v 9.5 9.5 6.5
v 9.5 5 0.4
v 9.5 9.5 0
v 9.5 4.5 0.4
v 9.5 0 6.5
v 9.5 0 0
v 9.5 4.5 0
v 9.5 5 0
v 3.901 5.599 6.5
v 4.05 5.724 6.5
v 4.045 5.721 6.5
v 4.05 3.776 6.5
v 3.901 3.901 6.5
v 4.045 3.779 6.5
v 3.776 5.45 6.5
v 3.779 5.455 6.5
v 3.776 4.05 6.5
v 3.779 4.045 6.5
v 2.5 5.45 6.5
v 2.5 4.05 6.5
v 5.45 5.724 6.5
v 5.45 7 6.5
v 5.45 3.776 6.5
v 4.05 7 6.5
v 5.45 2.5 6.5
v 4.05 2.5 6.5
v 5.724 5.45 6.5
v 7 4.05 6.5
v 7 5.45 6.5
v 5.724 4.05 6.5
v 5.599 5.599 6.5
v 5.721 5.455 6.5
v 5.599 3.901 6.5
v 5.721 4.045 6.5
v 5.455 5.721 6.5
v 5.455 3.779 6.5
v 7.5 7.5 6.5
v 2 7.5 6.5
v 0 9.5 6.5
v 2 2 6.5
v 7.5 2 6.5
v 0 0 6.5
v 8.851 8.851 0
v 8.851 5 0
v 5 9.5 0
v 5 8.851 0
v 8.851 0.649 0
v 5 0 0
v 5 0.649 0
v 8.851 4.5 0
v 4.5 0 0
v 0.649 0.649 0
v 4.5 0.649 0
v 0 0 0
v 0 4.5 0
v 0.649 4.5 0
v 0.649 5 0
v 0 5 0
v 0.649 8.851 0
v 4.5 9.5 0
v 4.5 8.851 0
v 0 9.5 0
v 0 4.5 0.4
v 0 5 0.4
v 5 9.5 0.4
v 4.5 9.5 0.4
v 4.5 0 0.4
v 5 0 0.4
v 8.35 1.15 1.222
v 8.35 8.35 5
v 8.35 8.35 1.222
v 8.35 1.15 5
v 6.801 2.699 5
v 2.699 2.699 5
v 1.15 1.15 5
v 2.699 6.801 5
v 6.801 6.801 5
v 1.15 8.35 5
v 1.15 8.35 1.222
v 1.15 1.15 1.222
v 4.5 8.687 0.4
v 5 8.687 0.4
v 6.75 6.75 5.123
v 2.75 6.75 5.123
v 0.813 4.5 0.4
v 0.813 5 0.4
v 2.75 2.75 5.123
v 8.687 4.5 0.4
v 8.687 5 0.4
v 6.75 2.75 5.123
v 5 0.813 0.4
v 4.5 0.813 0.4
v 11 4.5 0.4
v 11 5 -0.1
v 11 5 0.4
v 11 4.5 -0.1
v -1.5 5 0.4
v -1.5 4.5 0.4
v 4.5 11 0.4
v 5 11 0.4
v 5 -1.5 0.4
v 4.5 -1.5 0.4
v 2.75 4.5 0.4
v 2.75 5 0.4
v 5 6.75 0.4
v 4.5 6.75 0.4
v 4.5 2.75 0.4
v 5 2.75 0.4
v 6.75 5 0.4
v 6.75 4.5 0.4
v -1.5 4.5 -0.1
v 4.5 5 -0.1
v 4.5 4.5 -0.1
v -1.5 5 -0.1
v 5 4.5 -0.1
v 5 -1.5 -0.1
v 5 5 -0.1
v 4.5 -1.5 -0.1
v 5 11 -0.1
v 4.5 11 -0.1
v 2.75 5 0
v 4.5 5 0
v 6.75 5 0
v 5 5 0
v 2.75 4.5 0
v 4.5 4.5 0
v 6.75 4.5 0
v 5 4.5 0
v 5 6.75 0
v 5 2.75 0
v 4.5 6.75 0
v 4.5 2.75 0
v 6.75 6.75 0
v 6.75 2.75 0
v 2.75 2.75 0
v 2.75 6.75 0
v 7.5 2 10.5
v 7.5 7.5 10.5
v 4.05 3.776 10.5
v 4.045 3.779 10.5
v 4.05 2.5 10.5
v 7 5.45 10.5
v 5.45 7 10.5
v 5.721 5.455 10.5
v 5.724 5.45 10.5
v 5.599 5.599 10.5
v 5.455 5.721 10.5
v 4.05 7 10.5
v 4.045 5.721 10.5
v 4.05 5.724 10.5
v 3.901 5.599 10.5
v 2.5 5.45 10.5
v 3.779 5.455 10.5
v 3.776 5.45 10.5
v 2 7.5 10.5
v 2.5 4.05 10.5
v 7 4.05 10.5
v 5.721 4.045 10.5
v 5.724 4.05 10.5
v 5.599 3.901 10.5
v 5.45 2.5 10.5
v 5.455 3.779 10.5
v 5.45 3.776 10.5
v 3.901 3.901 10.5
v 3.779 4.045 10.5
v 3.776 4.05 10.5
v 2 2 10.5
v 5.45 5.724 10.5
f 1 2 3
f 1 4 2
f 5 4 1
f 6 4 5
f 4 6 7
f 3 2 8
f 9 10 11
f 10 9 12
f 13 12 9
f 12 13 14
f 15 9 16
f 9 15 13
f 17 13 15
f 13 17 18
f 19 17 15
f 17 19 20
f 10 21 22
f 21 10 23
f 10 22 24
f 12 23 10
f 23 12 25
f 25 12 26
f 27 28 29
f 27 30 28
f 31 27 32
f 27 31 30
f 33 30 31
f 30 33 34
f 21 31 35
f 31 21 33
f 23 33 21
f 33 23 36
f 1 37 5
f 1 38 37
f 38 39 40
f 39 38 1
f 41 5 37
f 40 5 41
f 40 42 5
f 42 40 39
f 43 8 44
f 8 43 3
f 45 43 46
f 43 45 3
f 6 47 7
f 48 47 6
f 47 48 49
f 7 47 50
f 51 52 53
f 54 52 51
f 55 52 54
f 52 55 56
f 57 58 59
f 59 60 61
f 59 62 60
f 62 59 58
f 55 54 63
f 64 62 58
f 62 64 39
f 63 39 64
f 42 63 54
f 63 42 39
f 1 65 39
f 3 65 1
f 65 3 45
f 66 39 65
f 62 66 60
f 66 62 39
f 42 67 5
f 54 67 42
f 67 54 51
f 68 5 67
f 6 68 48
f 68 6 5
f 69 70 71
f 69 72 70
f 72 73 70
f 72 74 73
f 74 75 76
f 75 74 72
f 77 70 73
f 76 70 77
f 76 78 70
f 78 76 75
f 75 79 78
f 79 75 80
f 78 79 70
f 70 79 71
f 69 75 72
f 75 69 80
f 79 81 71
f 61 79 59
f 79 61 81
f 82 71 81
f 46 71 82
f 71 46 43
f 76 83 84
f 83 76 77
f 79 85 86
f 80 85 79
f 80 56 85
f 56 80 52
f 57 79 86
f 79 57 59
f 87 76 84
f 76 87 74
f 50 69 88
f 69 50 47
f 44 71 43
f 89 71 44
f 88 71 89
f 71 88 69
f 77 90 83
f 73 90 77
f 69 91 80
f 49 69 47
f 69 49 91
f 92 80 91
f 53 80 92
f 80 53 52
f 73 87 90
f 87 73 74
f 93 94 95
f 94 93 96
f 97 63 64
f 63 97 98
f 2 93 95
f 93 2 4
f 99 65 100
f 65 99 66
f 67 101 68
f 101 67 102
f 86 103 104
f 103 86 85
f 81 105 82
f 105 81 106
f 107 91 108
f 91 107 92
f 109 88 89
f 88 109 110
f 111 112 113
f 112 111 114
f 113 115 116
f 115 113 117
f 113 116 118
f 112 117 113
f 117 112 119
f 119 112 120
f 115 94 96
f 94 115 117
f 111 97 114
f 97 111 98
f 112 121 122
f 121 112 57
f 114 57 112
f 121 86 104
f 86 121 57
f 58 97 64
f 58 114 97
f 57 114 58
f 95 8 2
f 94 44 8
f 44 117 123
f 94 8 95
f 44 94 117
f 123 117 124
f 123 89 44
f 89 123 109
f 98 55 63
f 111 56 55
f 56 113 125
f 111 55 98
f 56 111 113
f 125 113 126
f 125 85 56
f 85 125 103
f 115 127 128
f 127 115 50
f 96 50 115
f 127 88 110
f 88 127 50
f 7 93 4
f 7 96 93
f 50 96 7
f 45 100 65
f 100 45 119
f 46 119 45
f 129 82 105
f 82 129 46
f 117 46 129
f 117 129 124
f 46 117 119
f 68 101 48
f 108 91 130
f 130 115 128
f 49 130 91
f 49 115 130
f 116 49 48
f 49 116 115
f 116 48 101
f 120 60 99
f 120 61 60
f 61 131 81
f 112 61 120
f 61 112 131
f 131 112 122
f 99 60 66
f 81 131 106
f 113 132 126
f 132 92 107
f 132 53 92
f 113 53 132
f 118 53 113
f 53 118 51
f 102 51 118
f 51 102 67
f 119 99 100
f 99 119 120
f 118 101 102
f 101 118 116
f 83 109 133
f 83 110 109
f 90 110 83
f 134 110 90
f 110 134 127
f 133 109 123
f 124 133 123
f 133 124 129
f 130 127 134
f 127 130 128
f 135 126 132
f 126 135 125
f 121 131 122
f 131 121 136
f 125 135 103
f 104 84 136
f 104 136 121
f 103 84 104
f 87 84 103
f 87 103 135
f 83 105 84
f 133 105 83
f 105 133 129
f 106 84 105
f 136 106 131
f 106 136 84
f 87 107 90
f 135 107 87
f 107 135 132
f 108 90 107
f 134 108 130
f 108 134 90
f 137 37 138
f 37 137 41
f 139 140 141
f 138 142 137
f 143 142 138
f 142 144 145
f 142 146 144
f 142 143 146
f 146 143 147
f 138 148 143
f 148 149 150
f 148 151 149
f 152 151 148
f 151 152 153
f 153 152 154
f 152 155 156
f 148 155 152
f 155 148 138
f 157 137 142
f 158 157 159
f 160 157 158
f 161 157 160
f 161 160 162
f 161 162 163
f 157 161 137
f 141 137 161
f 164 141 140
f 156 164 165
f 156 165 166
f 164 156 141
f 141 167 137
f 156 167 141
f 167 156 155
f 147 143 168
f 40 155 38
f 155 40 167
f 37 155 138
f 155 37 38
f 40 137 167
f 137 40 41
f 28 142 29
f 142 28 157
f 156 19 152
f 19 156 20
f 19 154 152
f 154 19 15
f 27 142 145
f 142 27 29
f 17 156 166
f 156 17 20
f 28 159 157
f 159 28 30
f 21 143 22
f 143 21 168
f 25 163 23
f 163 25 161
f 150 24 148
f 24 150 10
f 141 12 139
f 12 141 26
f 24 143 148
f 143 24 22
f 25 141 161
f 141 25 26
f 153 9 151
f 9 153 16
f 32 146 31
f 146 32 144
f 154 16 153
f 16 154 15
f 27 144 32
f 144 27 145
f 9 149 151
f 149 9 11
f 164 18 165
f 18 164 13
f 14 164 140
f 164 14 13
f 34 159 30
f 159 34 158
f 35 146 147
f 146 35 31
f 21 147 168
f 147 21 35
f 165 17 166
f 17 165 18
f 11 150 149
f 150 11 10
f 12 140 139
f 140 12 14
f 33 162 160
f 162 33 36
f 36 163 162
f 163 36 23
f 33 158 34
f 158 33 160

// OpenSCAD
lo1 = 9.5;
ho1 = 6.5;

li1 = 7.2;
hi1 = 5;

li2 = 4.0;
hi2 = ho1;

ofs1 = (lo1 - li1) / 2;
ofs2 = (lo1 - li2) / 2;

rr = 5.8;
o4 = (lo1) / 2;

module hitek() {

xx = 0.5;
    
union() {
translate([-1.5, (lo1-xx)/2, -0.1]) cube([lo1 + 3, xx, xx], center = false);
translate([(lo1-xx)/2, -1.5, -0.1]) cube([xx, lo1+3, xx], center = false);
difference() {
	union() {
        translate([0, 0, 0])
			cube([lo1, lo1, ho1], center = false);
        }
    translate([ofs1, ofs1, 0]) cube([li1, li1, hi1], center = false);
translate([o4, o4, 0])rotate([0,0,45])cylinder(10,rr,0,$fn=4, center = false);
}
    translate([ofs2, ofs2, 0]) cube([li2, li2, hi2], center = false);
  // #translate([0, 0, hi1]) cube([lo1, lo1, ho1-hi1], center = false);
}

}

cl = 5.5;
ch = 4;
cx = 4.5;
cw = 1.4;
ri = 1.2;

co1 = (cl - cx) / 2;
co2 = (cl - cw) / 2;

module cherry() {

union() {
difference() {
	union() {
        translate([0, 0, 0])
			cube([cl, cl, ch], center = false);
        }
    translate([co1, co2, 0]) cube([cx, cw, ch], center = false);
    translate([co2, co1, 0]) cube([cw, cx, ch], center = false);
    translate([cl/2, cl/2, 0])rotate([0,0,0])cylinder(10,ri,ri,$fn=40, center = false);
}
}

}

o3 = (lo1 - cl) / 2;
translate([0, 0, 0])hitek();
translate([o3, o3, ho1])cherry();
